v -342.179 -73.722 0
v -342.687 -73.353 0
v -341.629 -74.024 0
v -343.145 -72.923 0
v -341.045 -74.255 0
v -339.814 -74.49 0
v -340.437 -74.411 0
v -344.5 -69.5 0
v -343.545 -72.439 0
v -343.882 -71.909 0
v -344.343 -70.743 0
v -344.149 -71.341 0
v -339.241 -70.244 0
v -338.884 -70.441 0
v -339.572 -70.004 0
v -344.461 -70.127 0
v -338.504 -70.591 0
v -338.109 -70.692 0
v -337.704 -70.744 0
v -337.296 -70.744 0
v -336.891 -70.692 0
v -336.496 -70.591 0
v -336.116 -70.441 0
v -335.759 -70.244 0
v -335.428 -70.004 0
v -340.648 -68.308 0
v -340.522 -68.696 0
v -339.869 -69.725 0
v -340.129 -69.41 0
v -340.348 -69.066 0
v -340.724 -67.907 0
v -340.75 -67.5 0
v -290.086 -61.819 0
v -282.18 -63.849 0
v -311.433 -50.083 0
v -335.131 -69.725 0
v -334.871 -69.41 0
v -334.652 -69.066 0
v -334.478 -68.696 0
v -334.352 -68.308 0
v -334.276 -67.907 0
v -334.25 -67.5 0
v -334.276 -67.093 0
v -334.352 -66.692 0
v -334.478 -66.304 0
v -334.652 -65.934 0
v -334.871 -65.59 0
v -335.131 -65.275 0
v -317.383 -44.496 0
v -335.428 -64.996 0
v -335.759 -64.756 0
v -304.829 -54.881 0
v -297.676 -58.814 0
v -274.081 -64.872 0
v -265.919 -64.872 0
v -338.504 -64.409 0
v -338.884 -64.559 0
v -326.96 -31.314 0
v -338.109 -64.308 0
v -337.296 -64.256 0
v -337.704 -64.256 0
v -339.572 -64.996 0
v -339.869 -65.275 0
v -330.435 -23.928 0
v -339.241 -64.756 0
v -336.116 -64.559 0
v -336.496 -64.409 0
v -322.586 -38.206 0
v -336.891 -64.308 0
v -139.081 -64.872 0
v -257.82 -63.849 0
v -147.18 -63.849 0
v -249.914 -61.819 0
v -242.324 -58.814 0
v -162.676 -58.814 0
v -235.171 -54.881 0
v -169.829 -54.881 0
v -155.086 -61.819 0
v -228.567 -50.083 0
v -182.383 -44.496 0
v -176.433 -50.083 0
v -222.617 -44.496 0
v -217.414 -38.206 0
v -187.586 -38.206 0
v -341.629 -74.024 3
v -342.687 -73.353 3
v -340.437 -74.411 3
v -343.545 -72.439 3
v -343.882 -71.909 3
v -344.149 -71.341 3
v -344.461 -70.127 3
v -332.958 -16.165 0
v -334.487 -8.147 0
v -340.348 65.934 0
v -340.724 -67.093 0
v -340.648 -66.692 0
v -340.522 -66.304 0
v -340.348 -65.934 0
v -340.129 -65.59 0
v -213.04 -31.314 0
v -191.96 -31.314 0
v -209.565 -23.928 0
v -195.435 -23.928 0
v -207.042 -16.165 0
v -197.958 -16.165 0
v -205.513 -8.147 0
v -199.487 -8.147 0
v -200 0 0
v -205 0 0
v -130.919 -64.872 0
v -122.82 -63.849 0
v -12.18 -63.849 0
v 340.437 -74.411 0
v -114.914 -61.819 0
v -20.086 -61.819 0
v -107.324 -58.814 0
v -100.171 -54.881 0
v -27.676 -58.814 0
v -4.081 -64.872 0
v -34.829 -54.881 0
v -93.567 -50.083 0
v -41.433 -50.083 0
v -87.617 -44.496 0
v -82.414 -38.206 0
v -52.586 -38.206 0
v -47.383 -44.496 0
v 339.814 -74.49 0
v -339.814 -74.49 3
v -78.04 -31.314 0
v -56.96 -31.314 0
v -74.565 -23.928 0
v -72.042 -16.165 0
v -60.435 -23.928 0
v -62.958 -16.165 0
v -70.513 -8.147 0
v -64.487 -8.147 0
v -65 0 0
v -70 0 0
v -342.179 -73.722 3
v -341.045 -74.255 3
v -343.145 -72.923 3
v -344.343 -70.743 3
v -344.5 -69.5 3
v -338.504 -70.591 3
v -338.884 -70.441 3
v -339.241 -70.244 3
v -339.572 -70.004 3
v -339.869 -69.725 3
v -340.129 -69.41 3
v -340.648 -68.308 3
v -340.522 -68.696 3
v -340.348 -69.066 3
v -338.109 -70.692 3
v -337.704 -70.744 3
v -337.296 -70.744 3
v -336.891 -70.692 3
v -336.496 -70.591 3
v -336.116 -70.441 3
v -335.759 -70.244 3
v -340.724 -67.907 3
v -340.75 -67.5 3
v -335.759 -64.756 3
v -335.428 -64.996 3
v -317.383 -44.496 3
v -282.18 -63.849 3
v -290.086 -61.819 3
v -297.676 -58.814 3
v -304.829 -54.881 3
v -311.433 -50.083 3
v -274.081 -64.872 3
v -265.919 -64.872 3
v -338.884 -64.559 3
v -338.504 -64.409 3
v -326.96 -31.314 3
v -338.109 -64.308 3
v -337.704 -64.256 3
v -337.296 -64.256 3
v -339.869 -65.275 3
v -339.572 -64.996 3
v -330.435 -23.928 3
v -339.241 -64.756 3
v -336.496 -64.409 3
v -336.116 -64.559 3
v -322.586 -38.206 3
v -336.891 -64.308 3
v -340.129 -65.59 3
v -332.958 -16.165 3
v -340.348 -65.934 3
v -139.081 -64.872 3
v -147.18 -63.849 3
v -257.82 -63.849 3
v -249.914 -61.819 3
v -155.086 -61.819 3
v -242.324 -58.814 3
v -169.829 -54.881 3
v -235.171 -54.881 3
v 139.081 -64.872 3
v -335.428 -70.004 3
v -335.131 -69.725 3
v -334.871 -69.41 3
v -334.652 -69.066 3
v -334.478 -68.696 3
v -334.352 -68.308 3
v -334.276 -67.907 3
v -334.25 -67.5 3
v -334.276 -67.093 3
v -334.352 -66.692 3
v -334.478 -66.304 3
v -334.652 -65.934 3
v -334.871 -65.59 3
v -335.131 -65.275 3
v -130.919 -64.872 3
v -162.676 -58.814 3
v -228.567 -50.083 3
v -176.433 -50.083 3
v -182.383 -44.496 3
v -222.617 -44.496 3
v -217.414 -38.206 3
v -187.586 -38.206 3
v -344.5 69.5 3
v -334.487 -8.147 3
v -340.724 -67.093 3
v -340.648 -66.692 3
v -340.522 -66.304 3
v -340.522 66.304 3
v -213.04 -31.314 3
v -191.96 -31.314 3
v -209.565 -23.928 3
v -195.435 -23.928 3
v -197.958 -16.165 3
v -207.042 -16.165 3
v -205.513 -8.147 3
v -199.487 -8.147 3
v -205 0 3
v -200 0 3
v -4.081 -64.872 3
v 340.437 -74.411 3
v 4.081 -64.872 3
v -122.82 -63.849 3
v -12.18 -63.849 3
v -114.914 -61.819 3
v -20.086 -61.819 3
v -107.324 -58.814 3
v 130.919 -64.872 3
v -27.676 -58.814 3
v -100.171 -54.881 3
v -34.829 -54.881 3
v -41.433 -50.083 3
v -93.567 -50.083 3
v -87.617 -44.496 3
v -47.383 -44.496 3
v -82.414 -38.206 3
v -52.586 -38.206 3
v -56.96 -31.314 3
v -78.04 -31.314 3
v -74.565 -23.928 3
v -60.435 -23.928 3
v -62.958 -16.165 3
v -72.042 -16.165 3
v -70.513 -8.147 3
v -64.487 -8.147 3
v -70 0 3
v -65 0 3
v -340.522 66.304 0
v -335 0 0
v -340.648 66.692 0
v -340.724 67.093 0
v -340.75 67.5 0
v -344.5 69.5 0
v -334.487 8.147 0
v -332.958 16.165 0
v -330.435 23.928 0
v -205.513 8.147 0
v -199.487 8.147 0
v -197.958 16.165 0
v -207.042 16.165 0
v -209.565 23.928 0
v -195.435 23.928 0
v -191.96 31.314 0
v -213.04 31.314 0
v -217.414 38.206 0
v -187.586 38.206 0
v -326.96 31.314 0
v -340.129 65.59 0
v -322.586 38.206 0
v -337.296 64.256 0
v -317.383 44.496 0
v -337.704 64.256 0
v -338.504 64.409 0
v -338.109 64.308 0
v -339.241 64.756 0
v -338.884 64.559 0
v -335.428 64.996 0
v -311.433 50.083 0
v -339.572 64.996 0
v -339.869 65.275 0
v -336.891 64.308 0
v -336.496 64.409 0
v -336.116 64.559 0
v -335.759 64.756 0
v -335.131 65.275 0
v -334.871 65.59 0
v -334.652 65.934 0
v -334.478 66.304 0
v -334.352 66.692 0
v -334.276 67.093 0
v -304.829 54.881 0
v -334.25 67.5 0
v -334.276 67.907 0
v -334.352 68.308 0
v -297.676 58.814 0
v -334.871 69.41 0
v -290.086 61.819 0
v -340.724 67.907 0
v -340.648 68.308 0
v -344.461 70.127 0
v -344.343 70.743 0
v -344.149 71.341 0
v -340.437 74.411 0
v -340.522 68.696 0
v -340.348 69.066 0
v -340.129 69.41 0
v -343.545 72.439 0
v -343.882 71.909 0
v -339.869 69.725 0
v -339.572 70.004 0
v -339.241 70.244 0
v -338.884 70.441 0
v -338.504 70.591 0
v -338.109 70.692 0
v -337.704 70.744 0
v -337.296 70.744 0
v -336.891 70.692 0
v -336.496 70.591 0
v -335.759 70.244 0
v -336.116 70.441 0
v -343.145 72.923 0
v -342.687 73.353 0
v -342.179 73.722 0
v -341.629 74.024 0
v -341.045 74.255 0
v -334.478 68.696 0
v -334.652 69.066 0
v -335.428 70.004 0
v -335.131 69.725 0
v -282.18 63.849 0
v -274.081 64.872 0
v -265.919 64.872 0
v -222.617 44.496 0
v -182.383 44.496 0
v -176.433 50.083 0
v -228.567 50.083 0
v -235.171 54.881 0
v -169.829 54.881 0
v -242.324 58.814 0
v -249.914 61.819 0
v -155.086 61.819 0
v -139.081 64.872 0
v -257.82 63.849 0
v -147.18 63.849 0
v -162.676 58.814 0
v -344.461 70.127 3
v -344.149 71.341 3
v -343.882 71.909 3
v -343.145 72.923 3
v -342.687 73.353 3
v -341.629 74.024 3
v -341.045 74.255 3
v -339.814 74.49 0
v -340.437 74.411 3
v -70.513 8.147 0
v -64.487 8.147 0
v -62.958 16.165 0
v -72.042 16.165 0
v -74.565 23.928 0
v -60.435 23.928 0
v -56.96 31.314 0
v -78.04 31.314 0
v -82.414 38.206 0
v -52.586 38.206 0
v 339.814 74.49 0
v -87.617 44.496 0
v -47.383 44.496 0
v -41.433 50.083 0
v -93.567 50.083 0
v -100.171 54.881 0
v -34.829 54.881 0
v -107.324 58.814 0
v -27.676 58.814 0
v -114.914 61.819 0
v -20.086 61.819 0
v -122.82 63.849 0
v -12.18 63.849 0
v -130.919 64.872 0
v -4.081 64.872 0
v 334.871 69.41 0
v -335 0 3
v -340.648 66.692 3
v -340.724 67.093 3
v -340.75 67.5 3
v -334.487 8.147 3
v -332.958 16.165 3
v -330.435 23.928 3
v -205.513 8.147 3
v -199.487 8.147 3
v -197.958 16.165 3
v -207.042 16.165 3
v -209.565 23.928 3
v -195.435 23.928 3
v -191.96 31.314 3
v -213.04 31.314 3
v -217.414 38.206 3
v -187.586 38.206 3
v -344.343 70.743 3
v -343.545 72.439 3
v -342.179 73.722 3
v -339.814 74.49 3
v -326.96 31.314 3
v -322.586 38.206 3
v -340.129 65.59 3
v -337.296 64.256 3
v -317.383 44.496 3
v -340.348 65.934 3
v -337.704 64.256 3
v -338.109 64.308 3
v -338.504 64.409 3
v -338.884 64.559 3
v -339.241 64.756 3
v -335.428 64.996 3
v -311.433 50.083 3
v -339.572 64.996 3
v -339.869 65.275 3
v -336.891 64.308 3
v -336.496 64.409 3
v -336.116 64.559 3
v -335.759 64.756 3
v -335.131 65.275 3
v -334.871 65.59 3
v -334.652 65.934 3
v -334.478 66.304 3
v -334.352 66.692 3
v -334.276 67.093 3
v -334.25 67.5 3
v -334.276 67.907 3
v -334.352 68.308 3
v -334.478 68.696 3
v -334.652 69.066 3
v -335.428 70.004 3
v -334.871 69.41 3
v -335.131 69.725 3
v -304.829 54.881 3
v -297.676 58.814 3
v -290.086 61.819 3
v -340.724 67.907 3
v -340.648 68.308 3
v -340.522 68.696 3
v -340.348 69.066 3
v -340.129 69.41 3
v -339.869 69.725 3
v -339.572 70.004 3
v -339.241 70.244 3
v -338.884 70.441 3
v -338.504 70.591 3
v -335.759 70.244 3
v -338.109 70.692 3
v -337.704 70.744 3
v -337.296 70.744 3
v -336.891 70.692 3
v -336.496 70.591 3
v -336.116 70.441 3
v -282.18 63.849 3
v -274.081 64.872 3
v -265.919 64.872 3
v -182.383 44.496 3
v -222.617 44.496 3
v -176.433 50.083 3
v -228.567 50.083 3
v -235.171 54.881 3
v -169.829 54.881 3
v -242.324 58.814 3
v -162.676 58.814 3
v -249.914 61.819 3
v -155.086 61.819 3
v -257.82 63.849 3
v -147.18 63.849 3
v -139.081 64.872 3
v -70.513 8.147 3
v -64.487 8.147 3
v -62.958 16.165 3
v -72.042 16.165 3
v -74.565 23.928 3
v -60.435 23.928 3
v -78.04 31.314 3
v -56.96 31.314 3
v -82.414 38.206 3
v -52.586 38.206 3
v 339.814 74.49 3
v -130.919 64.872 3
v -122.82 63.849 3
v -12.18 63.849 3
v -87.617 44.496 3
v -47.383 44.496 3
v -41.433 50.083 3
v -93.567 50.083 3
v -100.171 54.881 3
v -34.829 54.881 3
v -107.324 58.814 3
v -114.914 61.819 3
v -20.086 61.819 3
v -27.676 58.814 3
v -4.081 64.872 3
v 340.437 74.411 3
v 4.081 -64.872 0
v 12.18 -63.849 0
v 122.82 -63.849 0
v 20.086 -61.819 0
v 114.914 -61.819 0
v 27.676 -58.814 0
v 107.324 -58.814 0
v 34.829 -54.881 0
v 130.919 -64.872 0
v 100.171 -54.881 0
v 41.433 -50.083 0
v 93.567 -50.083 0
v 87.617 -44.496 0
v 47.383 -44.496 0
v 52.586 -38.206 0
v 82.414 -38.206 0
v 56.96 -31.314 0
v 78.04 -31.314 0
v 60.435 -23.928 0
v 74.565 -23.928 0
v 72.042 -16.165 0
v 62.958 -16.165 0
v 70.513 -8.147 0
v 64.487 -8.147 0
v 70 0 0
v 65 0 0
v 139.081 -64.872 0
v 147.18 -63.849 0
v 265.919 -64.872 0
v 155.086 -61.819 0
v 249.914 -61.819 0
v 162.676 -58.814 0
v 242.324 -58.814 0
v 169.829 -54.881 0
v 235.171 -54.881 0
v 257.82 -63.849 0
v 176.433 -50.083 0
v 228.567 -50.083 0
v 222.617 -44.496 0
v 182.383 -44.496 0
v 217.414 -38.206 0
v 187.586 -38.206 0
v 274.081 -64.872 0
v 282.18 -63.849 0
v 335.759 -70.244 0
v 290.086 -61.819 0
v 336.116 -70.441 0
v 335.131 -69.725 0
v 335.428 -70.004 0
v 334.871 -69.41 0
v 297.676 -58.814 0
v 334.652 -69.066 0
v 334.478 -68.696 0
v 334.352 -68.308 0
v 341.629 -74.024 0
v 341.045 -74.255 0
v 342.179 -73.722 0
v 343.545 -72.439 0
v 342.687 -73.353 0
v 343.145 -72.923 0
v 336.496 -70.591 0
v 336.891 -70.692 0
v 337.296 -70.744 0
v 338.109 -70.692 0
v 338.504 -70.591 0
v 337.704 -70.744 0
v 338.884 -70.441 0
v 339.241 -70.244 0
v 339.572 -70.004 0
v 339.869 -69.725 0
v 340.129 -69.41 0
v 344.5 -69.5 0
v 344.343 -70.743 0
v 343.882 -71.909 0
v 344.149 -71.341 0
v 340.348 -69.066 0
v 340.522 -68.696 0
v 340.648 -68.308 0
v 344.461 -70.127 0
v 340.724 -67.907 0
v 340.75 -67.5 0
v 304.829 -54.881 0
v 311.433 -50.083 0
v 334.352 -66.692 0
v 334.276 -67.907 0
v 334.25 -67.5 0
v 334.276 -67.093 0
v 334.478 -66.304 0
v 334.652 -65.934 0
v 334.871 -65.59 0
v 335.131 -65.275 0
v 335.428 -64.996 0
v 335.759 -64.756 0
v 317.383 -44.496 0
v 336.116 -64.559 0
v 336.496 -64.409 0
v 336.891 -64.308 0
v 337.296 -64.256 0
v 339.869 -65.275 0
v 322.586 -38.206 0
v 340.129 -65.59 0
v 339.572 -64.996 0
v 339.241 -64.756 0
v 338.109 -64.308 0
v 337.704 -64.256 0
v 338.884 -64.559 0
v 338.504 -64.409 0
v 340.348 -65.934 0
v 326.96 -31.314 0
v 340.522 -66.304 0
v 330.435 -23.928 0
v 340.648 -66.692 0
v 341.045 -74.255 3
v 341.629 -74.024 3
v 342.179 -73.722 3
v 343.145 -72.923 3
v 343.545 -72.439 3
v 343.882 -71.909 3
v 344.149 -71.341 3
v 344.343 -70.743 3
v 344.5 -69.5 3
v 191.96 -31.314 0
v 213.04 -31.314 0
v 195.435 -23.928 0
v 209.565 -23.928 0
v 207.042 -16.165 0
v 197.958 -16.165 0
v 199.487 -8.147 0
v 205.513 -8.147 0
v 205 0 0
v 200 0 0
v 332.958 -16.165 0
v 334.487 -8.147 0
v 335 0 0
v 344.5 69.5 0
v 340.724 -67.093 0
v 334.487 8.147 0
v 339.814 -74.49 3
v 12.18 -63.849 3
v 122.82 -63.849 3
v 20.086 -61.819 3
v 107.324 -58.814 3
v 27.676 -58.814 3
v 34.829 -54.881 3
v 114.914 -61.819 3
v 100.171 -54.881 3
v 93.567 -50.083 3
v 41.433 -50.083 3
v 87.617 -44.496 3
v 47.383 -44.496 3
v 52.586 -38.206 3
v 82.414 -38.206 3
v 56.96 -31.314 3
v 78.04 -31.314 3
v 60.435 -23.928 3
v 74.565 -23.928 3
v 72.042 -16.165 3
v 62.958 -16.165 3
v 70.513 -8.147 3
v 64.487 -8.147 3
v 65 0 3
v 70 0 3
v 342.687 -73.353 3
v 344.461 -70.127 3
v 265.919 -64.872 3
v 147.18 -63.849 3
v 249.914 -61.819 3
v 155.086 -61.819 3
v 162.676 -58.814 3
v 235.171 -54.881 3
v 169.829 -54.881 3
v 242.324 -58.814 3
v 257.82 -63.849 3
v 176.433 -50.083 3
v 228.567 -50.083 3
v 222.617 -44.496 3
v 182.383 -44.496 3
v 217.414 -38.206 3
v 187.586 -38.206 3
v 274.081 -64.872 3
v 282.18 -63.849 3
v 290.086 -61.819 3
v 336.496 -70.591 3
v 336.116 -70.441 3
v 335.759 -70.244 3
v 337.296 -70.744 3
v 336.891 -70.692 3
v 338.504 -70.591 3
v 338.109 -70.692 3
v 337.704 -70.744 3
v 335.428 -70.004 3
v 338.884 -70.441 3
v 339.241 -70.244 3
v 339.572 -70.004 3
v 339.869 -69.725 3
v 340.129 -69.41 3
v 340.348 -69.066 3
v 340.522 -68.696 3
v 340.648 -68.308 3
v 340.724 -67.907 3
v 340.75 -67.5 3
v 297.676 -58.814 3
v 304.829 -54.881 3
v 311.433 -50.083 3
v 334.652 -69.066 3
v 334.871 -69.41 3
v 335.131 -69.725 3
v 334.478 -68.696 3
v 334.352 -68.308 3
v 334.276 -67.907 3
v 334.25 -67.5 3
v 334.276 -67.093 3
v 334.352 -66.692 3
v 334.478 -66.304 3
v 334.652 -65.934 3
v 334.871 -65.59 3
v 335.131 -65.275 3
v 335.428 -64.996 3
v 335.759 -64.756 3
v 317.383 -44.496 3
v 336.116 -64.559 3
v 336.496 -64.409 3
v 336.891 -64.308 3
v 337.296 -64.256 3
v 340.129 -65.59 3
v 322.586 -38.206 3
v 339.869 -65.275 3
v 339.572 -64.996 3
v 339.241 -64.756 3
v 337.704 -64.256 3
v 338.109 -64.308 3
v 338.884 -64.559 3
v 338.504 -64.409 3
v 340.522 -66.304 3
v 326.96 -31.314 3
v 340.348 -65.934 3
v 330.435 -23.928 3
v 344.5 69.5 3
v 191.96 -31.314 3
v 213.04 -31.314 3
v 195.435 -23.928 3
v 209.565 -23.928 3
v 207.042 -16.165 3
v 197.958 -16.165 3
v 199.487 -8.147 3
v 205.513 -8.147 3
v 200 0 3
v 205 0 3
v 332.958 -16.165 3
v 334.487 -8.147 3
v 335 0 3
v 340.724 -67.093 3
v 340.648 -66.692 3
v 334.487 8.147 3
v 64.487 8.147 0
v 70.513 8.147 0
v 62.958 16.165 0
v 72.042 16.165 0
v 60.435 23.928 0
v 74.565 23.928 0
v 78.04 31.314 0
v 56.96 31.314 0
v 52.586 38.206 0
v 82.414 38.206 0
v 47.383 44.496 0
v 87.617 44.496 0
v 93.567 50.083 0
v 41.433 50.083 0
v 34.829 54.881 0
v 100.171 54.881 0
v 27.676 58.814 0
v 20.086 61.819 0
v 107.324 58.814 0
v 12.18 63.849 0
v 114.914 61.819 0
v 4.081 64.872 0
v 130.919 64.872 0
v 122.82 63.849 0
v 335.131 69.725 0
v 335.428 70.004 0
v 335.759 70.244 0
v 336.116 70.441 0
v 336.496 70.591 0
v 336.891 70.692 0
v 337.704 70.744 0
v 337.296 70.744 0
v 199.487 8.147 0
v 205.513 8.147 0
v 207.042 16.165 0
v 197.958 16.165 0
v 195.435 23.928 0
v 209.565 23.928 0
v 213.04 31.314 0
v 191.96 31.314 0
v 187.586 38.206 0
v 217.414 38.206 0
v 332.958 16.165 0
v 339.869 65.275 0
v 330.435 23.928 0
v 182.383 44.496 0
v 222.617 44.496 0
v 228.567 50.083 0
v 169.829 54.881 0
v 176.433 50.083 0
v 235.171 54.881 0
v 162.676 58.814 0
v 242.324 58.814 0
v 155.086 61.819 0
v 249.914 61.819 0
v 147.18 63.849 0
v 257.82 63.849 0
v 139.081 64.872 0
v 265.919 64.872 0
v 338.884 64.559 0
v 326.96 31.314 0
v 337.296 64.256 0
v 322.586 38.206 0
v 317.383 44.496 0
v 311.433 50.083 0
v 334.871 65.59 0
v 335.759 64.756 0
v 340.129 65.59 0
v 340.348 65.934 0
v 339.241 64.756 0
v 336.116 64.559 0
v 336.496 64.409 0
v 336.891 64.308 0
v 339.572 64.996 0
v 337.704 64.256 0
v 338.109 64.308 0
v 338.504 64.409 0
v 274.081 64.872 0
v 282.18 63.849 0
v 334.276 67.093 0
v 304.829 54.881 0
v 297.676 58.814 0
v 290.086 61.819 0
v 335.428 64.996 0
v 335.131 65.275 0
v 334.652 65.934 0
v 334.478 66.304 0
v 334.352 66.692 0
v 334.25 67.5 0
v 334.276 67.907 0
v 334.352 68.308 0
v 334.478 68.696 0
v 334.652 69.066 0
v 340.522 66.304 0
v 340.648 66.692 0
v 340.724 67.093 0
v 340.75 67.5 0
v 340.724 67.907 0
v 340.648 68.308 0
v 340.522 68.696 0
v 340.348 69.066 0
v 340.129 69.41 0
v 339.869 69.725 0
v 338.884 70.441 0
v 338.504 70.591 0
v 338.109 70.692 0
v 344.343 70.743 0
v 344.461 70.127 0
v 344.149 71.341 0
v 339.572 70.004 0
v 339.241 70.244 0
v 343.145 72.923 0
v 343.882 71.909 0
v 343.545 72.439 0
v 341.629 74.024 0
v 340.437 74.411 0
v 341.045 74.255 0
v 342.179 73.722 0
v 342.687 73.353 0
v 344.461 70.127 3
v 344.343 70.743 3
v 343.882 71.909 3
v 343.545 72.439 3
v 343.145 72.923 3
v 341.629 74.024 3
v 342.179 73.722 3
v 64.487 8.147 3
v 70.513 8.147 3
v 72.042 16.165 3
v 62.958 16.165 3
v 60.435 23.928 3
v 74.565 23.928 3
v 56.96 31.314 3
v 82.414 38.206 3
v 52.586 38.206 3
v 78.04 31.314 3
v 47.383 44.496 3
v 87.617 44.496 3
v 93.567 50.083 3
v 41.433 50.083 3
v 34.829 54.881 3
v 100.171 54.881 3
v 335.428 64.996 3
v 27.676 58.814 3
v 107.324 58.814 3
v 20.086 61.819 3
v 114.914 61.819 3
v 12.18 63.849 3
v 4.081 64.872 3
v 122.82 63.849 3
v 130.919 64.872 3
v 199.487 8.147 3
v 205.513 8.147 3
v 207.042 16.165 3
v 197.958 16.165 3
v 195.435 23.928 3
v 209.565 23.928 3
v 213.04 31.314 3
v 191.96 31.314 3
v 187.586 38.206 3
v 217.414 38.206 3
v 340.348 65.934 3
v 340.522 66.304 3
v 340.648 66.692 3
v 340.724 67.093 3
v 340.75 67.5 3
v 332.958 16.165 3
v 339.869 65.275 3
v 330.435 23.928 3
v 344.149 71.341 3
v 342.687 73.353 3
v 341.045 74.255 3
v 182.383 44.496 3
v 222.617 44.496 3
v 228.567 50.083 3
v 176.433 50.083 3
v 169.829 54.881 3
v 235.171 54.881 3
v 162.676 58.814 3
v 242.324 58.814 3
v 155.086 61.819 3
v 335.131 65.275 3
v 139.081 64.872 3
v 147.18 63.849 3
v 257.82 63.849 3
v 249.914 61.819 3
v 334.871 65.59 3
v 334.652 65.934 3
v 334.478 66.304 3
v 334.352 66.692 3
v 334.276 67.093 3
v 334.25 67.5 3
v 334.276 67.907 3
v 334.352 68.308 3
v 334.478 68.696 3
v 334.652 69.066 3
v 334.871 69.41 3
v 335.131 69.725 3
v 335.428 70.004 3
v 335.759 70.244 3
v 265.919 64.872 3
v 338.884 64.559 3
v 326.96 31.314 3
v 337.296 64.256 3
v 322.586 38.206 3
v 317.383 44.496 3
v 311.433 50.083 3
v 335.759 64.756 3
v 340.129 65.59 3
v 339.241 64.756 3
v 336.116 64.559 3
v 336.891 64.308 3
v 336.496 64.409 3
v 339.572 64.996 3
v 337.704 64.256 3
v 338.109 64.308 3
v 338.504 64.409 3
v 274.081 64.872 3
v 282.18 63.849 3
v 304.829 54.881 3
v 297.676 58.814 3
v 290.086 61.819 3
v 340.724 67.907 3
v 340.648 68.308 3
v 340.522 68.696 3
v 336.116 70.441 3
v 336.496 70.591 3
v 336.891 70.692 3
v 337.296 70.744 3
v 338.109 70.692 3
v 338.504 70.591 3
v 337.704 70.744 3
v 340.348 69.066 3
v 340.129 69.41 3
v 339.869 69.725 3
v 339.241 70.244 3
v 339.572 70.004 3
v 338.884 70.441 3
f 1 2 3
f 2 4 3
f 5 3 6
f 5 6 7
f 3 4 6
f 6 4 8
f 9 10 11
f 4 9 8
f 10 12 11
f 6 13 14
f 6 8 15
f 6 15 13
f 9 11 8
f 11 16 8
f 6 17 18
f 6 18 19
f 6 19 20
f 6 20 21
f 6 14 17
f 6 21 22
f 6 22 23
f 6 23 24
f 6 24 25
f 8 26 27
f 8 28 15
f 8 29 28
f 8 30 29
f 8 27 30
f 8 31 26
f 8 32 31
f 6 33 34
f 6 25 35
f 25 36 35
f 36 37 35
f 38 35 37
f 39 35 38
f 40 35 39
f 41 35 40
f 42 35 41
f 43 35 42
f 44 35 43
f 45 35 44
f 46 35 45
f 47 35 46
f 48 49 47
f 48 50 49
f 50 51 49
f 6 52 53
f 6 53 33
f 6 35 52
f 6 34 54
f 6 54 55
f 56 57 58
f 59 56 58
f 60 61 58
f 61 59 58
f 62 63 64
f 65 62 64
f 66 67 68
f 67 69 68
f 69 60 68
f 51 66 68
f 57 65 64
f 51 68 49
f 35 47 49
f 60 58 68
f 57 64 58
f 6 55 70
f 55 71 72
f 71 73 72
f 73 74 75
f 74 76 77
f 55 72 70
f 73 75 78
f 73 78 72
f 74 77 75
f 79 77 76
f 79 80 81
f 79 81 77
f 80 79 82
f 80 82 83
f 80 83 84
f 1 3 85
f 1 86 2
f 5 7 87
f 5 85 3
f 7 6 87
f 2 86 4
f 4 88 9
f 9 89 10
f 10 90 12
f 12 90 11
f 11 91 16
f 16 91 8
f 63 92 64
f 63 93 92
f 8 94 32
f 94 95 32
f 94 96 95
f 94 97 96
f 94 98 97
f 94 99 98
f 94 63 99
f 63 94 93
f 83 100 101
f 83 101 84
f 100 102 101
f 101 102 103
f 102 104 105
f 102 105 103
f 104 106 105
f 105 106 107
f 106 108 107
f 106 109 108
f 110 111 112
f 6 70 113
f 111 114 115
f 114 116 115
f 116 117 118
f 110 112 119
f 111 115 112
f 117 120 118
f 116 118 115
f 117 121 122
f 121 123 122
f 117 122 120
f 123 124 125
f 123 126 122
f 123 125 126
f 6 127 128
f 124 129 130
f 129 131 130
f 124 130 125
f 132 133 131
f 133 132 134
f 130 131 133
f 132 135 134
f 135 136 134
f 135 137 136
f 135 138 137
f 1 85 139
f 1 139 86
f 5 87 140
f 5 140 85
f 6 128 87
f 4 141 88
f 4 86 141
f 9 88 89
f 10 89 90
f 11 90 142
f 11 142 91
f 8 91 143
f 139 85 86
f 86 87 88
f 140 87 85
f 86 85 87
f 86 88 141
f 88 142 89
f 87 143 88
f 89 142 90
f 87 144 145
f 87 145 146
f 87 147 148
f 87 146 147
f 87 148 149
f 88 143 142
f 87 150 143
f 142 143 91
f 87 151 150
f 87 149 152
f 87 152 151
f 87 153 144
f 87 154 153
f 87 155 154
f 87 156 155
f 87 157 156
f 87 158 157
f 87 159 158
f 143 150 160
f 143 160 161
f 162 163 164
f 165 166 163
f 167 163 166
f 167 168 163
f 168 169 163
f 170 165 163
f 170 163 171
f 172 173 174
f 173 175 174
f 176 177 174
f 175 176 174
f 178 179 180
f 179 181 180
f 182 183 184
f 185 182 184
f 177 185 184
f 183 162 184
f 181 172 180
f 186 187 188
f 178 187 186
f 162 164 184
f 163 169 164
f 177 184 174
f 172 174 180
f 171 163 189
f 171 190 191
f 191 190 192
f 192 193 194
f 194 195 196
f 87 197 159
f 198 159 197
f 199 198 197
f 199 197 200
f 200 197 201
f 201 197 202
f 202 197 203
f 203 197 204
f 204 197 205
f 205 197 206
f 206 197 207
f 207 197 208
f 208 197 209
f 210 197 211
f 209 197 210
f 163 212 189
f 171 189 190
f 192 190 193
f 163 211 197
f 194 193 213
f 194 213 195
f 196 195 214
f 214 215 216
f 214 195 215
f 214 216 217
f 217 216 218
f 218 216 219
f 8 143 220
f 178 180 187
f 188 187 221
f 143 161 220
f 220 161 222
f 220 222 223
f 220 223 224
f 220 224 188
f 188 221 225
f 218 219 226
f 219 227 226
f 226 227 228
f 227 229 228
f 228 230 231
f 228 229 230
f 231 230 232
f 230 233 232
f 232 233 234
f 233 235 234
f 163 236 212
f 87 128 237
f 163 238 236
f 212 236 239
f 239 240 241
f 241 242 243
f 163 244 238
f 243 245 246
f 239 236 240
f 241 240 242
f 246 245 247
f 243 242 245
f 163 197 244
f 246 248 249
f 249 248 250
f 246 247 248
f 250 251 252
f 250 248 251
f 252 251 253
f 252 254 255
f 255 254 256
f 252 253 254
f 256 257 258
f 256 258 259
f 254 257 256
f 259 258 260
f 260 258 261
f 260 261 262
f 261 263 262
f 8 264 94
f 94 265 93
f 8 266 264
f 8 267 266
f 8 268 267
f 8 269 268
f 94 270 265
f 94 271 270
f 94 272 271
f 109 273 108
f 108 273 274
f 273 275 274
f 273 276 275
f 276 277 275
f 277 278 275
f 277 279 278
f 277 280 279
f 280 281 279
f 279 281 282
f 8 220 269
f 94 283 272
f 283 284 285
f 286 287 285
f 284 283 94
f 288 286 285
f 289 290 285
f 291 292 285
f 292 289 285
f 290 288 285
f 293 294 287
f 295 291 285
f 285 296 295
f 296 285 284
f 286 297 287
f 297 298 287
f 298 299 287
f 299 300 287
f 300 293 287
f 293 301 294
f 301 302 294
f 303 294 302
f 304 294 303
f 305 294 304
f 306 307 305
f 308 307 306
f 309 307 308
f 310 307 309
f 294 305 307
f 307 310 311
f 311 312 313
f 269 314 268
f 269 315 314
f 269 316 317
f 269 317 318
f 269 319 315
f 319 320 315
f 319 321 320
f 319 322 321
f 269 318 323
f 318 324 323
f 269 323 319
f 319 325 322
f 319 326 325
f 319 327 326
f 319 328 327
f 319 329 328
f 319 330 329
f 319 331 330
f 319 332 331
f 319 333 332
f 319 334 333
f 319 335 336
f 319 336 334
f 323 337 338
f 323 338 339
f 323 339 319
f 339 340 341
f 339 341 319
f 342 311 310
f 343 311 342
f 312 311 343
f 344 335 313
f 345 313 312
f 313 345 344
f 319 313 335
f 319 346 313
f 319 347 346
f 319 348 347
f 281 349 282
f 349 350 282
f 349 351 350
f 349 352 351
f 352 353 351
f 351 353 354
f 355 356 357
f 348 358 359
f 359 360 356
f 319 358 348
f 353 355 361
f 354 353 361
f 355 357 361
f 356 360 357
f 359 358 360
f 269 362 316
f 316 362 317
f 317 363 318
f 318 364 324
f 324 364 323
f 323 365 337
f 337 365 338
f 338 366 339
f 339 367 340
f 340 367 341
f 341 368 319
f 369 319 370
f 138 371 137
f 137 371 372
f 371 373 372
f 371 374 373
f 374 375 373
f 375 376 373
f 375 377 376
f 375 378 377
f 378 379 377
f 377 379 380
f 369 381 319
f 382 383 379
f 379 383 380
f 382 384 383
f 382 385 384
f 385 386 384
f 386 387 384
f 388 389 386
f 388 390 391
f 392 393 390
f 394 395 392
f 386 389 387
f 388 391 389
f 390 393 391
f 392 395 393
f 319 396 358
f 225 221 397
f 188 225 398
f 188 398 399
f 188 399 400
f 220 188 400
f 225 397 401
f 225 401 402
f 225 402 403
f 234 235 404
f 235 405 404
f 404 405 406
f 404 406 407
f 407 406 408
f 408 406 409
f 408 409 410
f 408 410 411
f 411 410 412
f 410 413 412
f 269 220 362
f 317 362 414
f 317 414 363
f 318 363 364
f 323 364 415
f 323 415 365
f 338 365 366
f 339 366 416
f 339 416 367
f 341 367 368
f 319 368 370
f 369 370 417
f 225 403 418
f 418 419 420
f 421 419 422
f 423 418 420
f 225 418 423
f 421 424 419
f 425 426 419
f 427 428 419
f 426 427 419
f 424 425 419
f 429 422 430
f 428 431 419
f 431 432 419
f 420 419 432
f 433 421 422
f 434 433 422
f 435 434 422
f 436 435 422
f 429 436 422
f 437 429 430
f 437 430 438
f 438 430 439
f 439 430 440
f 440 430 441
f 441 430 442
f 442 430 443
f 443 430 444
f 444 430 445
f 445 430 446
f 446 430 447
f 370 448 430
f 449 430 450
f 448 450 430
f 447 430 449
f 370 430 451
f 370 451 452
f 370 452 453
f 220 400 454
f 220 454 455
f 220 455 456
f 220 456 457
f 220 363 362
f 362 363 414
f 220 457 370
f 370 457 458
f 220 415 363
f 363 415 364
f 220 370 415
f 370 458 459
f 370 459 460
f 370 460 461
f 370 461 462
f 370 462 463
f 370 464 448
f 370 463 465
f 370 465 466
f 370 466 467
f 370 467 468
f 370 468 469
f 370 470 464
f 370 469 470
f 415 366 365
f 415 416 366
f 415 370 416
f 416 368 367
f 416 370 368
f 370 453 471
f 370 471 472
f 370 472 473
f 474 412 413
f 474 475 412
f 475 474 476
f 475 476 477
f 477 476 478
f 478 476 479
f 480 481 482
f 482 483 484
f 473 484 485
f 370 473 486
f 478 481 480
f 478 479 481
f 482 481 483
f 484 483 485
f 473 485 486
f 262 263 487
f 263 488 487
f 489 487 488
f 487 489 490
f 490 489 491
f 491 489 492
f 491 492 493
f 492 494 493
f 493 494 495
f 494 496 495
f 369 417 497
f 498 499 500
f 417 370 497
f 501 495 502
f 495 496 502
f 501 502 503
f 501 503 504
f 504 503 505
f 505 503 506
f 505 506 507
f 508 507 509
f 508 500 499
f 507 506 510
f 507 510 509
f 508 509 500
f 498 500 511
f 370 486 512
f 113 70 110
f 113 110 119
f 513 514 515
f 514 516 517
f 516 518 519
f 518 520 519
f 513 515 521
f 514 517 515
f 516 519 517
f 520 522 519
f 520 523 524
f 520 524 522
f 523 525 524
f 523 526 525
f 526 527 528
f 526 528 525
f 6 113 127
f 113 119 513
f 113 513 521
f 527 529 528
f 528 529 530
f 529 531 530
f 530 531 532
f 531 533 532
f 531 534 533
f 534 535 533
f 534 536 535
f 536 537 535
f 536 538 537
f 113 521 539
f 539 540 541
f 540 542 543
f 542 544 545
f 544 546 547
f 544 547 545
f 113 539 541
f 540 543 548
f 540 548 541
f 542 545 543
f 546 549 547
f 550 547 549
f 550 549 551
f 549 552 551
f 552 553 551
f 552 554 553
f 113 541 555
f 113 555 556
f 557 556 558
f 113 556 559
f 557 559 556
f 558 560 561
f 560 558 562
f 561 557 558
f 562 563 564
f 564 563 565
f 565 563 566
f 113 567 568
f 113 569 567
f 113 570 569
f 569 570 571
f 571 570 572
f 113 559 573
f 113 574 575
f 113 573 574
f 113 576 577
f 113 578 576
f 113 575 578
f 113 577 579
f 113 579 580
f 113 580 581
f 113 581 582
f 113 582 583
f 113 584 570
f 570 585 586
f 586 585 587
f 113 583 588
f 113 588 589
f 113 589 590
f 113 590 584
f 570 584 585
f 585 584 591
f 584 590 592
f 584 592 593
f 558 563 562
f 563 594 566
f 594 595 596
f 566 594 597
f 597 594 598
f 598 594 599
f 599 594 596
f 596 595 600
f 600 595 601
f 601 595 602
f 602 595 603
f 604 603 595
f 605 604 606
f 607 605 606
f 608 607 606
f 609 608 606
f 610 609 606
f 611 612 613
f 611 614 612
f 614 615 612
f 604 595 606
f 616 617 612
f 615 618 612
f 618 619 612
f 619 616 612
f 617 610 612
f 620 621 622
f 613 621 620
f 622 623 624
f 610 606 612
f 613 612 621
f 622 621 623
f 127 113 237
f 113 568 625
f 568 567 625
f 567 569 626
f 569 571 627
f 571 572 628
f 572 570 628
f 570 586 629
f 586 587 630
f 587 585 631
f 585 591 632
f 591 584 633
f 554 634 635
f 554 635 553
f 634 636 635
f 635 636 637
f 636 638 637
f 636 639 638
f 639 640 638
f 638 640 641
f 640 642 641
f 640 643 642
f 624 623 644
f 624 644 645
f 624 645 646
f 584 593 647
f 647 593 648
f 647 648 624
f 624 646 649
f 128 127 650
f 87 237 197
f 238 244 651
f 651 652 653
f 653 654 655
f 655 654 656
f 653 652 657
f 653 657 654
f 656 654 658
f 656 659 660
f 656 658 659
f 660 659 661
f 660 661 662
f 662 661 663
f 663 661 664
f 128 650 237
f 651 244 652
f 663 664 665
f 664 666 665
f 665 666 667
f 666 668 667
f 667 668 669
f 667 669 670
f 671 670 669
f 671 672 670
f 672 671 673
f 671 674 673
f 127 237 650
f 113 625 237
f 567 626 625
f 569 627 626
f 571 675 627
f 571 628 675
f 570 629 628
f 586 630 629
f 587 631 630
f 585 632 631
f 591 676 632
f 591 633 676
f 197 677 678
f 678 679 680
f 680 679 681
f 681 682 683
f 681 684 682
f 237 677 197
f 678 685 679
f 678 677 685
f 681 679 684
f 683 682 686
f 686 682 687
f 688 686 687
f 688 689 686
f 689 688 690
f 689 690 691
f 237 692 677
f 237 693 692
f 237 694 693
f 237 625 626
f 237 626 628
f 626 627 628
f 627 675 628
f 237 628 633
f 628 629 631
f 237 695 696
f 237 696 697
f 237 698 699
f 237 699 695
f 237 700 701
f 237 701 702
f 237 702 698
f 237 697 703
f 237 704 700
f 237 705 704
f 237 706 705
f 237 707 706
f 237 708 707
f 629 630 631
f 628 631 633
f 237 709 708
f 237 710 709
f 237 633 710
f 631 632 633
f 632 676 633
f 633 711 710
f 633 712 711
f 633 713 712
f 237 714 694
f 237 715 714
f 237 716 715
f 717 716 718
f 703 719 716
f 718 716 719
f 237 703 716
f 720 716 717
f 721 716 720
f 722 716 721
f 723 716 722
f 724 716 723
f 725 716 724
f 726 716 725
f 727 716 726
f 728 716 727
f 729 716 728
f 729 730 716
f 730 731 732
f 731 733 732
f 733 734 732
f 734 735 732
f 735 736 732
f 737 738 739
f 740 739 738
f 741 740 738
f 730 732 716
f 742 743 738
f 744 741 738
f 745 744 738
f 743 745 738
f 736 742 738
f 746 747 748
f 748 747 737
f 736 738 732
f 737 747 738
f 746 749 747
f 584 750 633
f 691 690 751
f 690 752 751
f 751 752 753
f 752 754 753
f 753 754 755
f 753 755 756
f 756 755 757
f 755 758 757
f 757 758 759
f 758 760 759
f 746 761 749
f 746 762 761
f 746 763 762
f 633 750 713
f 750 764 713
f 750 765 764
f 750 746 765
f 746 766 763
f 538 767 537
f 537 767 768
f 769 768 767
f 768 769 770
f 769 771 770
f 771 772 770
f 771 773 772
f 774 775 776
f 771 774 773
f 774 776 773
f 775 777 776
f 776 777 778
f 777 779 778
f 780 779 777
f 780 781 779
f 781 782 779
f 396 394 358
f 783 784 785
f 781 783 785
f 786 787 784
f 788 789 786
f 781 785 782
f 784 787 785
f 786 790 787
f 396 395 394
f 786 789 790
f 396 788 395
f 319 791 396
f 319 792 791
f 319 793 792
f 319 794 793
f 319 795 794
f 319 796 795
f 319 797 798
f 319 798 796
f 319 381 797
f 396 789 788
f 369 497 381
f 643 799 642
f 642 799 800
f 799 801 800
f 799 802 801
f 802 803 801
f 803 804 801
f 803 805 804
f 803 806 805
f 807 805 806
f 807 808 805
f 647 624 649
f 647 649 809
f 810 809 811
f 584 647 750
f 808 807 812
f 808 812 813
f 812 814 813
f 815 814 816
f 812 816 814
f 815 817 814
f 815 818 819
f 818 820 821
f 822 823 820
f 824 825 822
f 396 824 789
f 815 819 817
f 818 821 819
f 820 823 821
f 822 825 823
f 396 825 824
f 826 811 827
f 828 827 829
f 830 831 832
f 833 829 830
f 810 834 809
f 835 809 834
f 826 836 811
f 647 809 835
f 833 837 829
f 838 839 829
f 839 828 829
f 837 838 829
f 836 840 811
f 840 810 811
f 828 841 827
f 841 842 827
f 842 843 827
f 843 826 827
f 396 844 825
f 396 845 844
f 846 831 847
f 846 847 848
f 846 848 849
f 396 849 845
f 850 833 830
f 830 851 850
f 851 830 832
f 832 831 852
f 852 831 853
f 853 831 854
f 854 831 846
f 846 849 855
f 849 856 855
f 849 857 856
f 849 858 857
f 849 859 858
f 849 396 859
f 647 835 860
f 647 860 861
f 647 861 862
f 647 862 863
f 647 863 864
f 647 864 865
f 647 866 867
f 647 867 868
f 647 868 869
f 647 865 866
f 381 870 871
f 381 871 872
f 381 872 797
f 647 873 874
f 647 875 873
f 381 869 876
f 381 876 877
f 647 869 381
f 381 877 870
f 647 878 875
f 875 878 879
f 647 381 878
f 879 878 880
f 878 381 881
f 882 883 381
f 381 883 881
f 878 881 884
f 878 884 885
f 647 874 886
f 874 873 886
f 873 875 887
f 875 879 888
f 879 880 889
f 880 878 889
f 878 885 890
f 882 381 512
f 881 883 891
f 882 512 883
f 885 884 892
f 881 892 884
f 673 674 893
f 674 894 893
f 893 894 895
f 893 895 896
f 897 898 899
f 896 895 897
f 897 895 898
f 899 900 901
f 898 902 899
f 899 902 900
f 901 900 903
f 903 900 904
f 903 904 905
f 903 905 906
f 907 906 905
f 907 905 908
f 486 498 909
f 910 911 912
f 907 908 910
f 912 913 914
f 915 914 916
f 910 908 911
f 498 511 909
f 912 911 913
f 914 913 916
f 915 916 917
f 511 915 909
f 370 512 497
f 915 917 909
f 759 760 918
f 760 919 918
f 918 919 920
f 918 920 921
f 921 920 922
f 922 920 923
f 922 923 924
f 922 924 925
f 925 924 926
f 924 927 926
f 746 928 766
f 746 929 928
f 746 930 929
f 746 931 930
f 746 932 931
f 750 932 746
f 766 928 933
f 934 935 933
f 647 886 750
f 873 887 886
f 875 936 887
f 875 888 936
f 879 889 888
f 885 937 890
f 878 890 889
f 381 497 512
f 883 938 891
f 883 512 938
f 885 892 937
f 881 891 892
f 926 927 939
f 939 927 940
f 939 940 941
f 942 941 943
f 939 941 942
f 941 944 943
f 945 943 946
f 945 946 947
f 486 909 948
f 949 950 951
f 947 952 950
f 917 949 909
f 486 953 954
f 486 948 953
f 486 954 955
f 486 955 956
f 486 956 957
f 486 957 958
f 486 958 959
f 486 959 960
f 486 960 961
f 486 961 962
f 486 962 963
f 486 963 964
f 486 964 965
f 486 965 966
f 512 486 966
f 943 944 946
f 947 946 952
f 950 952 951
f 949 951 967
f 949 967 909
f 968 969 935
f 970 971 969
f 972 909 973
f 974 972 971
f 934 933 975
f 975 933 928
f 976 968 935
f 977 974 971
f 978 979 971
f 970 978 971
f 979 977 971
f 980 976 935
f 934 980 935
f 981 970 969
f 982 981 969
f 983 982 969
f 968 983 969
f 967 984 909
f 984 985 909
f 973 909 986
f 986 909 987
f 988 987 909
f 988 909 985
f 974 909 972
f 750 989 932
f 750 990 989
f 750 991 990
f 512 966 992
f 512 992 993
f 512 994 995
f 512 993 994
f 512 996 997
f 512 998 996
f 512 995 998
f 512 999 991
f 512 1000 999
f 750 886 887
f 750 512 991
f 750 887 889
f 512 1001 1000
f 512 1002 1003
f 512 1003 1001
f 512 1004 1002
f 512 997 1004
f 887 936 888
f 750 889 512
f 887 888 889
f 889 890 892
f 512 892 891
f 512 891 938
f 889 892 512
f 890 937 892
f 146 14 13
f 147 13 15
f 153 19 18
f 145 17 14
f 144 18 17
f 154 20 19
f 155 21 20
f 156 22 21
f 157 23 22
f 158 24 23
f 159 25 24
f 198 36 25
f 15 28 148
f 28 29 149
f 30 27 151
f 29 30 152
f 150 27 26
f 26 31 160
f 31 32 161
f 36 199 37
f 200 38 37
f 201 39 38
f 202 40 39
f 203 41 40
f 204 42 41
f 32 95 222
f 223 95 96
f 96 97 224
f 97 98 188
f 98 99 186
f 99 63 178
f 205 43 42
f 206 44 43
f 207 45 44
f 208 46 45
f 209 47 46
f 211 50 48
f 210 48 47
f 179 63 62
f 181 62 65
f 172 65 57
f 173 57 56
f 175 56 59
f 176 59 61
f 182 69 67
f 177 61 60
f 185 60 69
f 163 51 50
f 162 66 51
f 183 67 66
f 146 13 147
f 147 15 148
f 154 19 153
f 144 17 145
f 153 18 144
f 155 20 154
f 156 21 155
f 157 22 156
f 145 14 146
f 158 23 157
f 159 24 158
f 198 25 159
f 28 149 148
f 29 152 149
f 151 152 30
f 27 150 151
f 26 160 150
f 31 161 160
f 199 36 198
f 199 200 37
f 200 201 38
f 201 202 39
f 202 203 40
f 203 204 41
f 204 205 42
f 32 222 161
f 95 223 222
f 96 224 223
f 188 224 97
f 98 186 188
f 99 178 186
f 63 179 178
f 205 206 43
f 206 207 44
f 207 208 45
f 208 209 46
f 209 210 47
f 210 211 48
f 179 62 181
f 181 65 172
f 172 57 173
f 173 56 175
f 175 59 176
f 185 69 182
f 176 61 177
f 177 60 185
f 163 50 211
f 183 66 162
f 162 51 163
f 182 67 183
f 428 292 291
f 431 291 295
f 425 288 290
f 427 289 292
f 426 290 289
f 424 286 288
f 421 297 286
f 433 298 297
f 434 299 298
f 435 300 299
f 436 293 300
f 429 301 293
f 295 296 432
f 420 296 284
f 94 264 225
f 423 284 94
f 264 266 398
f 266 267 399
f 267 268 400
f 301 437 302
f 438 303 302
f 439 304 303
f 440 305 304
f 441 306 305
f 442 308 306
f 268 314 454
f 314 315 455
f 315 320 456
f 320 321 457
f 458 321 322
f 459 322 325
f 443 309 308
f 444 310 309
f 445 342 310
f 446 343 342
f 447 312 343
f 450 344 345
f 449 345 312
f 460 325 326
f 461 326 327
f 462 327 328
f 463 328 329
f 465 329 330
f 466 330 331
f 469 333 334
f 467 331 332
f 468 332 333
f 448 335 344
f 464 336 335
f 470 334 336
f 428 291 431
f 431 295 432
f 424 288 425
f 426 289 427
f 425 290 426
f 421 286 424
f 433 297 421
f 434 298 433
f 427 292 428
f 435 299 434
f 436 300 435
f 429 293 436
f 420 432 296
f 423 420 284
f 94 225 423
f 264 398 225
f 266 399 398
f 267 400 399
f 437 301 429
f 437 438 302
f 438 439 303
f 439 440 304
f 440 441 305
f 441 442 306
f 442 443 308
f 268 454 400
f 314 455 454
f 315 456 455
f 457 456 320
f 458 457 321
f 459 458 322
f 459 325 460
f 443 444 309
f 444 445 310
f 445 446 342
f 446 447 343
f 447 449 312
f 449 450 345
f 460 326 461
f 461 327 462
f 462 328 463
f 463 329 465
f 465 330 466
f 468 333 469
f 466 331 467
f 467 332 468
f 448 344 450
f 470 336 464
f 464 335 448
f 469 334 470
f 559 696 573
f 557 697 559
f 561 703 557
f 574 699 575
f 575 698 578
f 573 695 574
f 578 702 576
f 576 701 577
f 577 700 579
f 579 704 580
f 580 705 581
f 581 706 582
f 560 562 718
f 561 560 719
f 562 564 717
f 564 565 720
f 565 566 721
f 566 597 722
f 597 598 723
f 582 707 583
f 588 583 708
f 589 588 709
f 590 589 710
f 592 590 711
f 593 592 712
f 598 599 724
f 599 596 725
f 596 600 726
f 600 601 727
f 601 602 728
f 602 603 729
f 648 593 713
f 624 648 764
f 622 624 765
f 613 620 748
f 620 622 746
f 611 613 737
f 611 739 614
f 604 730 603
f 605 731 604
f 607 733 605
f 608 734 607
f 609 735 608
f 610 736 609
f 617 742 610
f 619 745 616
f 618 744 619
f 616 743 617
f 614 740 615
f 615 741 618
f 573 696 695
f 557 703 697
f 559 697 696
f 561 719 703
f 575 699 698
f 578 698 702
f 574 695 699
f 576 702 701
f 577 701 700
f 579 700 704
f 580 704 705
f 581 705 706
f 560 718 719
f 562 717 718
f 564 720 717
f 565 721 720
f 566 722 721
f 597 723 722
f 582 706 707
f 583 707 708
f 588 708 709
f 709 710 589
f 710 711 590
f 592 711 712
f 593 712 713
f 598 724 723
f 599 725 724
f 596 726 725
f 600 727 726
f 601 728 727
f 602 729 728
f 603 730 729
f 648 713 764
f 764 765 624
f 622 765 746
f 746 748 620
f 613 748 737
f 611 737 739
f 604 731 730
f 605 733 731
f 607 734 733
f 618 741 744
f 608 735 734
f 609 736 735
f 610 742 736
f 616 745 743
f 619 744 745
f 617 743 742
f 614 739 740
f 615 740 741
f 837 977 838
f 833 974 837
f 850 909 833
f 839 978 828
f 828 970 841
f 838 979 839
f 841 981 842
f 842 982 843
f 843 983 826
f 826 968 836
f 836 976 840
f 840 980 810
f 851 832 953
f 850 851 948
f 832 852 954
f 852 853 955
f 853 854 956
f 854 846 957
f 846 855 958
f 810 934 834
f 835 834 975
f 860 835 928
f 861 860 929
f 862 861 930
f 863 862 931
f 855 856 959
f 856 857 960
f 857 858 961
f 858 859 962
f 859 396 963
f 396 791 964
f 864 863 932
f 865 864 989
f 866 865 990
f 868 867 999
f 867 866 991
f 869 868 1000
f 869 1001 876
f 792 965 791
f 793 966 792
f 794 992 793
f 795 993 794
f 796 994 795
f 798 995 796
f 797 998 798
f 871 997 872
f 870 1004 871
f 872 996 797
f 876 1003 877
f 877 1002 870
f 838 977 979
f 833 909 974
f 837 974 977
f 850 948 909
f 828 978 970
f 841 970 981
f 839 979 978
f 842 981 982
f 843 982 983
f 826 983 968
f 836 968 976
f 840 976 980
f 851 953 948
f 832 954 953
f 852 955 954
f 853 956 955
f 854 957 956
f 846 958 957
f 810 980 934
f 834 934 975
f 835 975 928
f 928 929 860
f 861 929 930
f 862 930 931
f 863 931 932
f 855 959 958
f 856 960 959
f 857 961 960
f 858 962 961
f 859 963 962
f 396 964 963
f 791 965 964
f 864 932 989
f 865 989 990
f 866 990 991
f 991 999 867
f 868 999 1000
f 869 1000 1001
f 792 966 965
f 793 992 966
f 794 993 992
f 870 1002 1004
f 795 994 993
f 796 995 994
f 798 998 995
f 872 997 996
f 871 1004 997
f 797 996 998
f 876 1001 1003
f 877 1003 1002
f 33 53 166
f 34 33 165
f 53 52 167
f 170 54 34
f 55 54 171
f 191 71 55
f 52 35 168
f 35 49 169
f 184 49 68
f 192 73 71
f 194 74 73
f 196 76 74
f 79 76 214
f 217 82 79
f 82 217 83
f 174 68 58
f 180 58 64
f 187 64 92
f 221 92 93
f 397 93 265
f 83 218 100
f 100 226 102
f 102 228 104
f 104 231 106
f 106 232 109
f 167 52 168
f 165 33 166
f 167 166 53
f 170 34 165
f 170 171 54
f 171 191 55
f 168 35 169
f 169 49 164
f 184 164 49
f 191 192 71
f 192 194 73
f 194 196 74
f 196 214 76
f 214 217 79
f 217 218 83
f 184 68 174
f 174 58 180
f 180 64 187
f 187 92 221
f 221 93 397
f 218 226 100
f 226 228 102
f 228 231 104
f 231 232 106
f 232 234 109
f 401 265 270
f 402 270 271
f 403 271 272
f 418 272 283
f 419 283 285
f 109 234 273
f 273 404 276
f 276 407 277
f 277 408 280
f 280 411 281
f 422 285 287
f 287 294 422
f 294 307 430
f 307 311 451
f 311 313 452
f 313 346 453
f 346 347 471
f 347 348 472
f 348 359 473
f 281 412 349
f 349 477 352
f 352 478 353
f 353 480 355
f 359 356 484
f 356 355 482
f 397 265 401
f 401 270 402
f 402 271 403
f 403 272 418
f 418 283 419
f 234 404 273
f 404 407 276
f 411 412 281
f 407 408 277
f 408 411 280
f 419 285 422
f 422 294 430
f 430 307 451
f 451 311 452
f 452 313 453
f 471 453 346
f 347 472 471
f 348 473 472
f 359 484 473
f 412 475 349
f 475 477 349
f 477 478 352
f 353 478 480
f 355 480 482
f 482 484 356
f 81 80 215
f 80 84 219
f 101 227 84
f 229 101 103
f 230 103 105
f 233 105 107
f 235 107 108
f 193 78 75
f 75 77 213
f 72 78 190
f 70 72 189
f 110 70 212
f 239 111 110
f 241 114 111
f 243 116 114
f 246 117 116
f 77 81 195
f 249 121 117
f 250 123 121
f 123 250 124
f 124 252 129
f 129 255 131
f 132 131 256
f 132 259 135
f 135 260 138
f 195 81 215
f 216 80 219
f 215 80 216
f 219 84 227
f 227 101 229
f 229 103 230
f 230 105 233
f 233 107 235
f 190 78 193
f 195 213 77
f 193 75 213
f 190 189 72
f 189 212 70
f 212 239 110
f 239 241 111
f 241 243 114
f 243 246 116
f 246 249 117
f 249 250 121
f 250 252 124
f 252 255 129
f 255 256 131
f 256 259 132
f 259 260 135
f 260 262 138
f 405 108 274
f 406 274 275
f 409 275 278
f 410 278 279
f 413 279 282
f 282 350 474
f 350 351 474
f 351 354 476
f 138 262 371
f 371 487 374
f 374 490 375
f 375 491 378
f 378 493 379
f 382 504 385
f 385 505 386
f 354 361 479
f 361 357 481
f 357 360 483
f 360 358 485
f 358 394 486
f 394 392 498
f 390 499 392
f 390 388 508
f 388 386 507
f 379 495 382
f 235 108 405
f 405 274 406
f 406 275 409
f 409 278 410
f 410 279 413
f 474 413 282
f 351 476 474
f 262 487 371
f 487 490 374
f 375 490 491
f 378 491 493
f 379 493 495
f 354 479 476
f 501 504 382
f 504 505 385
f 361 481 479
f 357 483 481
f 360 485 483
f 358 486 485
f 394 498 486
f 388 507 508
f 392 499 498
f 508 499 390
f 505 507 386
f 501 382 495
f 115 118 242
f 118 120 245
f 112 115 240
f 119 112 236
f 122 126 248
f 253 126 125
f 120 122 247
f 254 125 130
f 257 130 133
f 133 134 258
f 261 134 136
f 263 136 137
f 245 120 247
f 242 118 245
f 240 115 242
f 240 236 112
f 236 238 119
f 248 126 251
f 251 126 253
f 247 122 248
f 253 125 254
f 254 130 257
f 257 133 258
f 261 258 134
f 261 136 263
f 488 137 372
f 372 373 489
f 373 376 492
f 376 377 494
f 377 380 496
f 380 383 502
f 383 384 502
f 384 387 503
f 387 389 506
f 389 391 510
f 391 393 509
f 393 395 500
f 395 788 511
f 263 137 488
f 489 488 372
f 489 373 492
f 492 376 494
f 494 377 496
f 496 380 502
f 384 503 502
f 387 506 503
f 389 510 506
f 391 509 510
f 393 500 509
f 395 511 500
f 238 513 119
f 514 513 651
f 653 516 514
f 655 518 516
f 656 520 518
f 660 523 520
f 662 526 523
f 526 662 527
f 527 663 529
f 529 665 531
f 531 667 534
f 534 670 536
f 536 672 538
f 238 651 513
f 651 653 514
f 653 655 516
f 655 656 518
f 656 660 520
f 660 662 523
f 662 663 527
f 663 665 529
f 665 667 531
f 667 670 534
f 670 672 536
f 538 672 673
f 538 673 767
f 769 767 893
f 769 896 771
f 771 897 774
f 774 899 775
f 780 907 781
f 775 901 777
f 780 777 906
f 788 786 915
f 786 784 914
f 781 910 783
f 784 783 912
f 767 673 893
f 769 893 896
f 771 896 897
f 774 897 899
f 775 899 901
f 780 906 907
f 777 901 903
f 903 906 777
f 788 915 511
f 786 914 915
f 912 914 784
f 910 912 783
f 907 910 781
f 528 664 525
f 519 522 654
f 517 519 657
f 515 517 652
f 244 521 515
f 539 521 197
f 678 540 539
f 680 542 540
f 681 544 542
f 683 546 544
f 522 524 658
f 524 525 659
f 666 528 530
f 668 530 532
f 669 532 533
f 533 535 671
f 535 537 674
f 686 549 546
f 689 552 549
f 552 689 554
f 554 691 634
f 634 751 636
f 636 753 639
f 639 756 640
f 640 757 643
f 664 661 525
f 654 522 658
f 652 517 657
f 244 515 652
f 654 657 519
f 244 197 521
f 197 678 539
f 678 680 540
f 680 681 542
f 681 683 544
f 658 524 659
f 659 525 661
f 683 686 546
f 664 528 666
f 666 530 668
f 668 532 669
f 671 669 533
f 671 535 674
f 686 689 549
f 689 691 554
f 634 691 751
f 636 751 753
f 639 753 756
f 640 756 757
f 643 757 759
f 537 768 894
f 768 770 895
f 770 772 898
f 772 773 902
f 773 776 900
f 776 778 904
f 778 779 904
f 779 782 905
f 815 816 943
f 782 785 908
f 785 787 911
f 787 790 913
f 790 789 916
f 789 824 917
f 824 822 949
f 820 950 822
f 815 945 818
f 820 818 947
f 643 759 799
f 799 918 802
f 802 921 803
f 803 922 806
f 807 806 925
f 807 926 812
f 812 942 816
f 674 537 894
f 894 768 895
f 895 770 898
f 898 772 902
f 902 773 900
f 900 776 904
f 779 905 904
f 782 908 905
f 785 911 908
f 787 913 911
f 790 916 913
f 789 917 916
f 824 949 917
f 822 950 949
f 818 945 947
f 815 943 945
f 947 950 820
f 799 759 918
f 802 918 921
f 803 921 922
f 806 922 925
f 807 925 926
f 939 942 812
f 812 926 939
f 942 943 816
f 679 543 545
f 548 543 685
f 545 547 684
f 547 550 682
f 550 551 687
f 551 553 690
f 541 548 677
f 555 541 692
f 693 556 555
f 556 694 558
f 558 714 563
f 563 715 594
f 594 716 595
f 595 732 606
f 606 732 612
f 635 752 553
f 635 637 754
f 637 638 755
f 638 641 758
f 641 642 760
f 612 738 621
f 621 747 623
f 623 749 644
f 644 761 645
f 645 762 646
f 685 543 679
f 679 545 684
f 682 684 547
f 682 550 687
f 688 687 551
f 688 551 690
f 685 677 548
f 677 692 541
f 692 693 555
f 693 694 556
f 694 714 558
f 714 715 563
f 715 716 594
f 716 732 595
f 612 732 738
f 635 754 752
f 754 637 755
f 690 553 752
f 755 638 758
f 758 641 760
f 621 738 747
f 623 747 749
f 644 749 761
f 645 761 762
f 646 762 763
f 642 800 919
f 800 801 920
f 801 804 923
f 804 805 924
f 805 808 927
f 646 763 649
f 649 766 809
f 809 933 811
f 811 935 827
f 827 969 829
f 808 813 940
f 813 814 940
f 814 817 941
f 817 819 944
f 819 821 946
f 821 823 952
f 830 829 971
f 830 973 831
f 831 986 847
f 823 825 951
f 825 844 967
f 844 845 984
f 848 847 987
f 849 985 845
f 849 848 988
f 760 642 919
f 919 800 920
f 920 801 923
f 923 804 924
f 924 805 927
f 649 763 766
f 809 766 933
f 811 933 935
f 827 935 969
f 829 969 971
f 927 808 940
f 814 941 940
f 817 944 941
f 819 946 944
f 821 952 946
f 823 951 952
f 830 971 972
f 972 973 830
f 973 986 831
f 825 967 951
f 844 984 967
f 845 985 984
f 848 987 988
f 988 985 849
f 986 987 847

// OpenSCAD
$fn = 50;

difference() {
	union() {
		hull() {
			translate(v = [-339.5, 69.5, 0]) {
				cylinder(h = 3, r = 5);
			}
			translate(v = [339.5, 69.5, 0]) {
				cylinder(h = 3, r = 5);
			}
			translate(v = [-339.5, -69.5, 0]) {
				cylinder(h = 3, r = 5);
			}
			translate(v = [339.5, -69.5, 0]) {
				cylinder(h = 3, r = 5);
			}
		}
	}
	union() {
		translate(v = [-337.5, -67.5, -100.0]) {
			cylinder(h = 200, r = 3.25);
		}
		translate(v = [-337.5, 67.5, -100.0]) {
			cylinder(h = 200, r = 3.25);
		}
		translate(v = [337.5, -67.5, -100.0]) {
			cylinder(h = 200, r = 3.25);
		}
		translate(v = [337.5, 67.5, -100.0]) {
			cylinder(h = 200, r = 3.25);
		}
		translate(v = [-337.5, -67.5, -100.0]) {
			cylinder(h = 200, r = 1.8);
		}
		translate(v = [-337.5, 67.5, -100.0]) {
			cylinder(h = 200, r = 1.8);
		}
		translate(v = [337.5, -67.5, -100.0]) {
			cylinder(h = 200, r = 1.8);
		}
		translate(v = [337.5, 67.5, -100.0]) {
			cylinder(h = 200, r = 1.8);
		}
		translate(v = [-270.0, 0, 0.0]) {
			cylinder(h = 3, r = 65.0);
		}
		translate(v = [-135.0, 0, 0.0]) {
			cylinder(h = 3, r = 65.0);
		}
		cylinder(h = 3, r = 65.0);
		translate(v = [135.0, 0, 0.0]) {
			cylinder(h = 3, r = 65.0);
		}
		translate(v = [270.0, 0, 0.0]) {
			cylinder(h = 3, r = 65.0);
		}
	}
}
